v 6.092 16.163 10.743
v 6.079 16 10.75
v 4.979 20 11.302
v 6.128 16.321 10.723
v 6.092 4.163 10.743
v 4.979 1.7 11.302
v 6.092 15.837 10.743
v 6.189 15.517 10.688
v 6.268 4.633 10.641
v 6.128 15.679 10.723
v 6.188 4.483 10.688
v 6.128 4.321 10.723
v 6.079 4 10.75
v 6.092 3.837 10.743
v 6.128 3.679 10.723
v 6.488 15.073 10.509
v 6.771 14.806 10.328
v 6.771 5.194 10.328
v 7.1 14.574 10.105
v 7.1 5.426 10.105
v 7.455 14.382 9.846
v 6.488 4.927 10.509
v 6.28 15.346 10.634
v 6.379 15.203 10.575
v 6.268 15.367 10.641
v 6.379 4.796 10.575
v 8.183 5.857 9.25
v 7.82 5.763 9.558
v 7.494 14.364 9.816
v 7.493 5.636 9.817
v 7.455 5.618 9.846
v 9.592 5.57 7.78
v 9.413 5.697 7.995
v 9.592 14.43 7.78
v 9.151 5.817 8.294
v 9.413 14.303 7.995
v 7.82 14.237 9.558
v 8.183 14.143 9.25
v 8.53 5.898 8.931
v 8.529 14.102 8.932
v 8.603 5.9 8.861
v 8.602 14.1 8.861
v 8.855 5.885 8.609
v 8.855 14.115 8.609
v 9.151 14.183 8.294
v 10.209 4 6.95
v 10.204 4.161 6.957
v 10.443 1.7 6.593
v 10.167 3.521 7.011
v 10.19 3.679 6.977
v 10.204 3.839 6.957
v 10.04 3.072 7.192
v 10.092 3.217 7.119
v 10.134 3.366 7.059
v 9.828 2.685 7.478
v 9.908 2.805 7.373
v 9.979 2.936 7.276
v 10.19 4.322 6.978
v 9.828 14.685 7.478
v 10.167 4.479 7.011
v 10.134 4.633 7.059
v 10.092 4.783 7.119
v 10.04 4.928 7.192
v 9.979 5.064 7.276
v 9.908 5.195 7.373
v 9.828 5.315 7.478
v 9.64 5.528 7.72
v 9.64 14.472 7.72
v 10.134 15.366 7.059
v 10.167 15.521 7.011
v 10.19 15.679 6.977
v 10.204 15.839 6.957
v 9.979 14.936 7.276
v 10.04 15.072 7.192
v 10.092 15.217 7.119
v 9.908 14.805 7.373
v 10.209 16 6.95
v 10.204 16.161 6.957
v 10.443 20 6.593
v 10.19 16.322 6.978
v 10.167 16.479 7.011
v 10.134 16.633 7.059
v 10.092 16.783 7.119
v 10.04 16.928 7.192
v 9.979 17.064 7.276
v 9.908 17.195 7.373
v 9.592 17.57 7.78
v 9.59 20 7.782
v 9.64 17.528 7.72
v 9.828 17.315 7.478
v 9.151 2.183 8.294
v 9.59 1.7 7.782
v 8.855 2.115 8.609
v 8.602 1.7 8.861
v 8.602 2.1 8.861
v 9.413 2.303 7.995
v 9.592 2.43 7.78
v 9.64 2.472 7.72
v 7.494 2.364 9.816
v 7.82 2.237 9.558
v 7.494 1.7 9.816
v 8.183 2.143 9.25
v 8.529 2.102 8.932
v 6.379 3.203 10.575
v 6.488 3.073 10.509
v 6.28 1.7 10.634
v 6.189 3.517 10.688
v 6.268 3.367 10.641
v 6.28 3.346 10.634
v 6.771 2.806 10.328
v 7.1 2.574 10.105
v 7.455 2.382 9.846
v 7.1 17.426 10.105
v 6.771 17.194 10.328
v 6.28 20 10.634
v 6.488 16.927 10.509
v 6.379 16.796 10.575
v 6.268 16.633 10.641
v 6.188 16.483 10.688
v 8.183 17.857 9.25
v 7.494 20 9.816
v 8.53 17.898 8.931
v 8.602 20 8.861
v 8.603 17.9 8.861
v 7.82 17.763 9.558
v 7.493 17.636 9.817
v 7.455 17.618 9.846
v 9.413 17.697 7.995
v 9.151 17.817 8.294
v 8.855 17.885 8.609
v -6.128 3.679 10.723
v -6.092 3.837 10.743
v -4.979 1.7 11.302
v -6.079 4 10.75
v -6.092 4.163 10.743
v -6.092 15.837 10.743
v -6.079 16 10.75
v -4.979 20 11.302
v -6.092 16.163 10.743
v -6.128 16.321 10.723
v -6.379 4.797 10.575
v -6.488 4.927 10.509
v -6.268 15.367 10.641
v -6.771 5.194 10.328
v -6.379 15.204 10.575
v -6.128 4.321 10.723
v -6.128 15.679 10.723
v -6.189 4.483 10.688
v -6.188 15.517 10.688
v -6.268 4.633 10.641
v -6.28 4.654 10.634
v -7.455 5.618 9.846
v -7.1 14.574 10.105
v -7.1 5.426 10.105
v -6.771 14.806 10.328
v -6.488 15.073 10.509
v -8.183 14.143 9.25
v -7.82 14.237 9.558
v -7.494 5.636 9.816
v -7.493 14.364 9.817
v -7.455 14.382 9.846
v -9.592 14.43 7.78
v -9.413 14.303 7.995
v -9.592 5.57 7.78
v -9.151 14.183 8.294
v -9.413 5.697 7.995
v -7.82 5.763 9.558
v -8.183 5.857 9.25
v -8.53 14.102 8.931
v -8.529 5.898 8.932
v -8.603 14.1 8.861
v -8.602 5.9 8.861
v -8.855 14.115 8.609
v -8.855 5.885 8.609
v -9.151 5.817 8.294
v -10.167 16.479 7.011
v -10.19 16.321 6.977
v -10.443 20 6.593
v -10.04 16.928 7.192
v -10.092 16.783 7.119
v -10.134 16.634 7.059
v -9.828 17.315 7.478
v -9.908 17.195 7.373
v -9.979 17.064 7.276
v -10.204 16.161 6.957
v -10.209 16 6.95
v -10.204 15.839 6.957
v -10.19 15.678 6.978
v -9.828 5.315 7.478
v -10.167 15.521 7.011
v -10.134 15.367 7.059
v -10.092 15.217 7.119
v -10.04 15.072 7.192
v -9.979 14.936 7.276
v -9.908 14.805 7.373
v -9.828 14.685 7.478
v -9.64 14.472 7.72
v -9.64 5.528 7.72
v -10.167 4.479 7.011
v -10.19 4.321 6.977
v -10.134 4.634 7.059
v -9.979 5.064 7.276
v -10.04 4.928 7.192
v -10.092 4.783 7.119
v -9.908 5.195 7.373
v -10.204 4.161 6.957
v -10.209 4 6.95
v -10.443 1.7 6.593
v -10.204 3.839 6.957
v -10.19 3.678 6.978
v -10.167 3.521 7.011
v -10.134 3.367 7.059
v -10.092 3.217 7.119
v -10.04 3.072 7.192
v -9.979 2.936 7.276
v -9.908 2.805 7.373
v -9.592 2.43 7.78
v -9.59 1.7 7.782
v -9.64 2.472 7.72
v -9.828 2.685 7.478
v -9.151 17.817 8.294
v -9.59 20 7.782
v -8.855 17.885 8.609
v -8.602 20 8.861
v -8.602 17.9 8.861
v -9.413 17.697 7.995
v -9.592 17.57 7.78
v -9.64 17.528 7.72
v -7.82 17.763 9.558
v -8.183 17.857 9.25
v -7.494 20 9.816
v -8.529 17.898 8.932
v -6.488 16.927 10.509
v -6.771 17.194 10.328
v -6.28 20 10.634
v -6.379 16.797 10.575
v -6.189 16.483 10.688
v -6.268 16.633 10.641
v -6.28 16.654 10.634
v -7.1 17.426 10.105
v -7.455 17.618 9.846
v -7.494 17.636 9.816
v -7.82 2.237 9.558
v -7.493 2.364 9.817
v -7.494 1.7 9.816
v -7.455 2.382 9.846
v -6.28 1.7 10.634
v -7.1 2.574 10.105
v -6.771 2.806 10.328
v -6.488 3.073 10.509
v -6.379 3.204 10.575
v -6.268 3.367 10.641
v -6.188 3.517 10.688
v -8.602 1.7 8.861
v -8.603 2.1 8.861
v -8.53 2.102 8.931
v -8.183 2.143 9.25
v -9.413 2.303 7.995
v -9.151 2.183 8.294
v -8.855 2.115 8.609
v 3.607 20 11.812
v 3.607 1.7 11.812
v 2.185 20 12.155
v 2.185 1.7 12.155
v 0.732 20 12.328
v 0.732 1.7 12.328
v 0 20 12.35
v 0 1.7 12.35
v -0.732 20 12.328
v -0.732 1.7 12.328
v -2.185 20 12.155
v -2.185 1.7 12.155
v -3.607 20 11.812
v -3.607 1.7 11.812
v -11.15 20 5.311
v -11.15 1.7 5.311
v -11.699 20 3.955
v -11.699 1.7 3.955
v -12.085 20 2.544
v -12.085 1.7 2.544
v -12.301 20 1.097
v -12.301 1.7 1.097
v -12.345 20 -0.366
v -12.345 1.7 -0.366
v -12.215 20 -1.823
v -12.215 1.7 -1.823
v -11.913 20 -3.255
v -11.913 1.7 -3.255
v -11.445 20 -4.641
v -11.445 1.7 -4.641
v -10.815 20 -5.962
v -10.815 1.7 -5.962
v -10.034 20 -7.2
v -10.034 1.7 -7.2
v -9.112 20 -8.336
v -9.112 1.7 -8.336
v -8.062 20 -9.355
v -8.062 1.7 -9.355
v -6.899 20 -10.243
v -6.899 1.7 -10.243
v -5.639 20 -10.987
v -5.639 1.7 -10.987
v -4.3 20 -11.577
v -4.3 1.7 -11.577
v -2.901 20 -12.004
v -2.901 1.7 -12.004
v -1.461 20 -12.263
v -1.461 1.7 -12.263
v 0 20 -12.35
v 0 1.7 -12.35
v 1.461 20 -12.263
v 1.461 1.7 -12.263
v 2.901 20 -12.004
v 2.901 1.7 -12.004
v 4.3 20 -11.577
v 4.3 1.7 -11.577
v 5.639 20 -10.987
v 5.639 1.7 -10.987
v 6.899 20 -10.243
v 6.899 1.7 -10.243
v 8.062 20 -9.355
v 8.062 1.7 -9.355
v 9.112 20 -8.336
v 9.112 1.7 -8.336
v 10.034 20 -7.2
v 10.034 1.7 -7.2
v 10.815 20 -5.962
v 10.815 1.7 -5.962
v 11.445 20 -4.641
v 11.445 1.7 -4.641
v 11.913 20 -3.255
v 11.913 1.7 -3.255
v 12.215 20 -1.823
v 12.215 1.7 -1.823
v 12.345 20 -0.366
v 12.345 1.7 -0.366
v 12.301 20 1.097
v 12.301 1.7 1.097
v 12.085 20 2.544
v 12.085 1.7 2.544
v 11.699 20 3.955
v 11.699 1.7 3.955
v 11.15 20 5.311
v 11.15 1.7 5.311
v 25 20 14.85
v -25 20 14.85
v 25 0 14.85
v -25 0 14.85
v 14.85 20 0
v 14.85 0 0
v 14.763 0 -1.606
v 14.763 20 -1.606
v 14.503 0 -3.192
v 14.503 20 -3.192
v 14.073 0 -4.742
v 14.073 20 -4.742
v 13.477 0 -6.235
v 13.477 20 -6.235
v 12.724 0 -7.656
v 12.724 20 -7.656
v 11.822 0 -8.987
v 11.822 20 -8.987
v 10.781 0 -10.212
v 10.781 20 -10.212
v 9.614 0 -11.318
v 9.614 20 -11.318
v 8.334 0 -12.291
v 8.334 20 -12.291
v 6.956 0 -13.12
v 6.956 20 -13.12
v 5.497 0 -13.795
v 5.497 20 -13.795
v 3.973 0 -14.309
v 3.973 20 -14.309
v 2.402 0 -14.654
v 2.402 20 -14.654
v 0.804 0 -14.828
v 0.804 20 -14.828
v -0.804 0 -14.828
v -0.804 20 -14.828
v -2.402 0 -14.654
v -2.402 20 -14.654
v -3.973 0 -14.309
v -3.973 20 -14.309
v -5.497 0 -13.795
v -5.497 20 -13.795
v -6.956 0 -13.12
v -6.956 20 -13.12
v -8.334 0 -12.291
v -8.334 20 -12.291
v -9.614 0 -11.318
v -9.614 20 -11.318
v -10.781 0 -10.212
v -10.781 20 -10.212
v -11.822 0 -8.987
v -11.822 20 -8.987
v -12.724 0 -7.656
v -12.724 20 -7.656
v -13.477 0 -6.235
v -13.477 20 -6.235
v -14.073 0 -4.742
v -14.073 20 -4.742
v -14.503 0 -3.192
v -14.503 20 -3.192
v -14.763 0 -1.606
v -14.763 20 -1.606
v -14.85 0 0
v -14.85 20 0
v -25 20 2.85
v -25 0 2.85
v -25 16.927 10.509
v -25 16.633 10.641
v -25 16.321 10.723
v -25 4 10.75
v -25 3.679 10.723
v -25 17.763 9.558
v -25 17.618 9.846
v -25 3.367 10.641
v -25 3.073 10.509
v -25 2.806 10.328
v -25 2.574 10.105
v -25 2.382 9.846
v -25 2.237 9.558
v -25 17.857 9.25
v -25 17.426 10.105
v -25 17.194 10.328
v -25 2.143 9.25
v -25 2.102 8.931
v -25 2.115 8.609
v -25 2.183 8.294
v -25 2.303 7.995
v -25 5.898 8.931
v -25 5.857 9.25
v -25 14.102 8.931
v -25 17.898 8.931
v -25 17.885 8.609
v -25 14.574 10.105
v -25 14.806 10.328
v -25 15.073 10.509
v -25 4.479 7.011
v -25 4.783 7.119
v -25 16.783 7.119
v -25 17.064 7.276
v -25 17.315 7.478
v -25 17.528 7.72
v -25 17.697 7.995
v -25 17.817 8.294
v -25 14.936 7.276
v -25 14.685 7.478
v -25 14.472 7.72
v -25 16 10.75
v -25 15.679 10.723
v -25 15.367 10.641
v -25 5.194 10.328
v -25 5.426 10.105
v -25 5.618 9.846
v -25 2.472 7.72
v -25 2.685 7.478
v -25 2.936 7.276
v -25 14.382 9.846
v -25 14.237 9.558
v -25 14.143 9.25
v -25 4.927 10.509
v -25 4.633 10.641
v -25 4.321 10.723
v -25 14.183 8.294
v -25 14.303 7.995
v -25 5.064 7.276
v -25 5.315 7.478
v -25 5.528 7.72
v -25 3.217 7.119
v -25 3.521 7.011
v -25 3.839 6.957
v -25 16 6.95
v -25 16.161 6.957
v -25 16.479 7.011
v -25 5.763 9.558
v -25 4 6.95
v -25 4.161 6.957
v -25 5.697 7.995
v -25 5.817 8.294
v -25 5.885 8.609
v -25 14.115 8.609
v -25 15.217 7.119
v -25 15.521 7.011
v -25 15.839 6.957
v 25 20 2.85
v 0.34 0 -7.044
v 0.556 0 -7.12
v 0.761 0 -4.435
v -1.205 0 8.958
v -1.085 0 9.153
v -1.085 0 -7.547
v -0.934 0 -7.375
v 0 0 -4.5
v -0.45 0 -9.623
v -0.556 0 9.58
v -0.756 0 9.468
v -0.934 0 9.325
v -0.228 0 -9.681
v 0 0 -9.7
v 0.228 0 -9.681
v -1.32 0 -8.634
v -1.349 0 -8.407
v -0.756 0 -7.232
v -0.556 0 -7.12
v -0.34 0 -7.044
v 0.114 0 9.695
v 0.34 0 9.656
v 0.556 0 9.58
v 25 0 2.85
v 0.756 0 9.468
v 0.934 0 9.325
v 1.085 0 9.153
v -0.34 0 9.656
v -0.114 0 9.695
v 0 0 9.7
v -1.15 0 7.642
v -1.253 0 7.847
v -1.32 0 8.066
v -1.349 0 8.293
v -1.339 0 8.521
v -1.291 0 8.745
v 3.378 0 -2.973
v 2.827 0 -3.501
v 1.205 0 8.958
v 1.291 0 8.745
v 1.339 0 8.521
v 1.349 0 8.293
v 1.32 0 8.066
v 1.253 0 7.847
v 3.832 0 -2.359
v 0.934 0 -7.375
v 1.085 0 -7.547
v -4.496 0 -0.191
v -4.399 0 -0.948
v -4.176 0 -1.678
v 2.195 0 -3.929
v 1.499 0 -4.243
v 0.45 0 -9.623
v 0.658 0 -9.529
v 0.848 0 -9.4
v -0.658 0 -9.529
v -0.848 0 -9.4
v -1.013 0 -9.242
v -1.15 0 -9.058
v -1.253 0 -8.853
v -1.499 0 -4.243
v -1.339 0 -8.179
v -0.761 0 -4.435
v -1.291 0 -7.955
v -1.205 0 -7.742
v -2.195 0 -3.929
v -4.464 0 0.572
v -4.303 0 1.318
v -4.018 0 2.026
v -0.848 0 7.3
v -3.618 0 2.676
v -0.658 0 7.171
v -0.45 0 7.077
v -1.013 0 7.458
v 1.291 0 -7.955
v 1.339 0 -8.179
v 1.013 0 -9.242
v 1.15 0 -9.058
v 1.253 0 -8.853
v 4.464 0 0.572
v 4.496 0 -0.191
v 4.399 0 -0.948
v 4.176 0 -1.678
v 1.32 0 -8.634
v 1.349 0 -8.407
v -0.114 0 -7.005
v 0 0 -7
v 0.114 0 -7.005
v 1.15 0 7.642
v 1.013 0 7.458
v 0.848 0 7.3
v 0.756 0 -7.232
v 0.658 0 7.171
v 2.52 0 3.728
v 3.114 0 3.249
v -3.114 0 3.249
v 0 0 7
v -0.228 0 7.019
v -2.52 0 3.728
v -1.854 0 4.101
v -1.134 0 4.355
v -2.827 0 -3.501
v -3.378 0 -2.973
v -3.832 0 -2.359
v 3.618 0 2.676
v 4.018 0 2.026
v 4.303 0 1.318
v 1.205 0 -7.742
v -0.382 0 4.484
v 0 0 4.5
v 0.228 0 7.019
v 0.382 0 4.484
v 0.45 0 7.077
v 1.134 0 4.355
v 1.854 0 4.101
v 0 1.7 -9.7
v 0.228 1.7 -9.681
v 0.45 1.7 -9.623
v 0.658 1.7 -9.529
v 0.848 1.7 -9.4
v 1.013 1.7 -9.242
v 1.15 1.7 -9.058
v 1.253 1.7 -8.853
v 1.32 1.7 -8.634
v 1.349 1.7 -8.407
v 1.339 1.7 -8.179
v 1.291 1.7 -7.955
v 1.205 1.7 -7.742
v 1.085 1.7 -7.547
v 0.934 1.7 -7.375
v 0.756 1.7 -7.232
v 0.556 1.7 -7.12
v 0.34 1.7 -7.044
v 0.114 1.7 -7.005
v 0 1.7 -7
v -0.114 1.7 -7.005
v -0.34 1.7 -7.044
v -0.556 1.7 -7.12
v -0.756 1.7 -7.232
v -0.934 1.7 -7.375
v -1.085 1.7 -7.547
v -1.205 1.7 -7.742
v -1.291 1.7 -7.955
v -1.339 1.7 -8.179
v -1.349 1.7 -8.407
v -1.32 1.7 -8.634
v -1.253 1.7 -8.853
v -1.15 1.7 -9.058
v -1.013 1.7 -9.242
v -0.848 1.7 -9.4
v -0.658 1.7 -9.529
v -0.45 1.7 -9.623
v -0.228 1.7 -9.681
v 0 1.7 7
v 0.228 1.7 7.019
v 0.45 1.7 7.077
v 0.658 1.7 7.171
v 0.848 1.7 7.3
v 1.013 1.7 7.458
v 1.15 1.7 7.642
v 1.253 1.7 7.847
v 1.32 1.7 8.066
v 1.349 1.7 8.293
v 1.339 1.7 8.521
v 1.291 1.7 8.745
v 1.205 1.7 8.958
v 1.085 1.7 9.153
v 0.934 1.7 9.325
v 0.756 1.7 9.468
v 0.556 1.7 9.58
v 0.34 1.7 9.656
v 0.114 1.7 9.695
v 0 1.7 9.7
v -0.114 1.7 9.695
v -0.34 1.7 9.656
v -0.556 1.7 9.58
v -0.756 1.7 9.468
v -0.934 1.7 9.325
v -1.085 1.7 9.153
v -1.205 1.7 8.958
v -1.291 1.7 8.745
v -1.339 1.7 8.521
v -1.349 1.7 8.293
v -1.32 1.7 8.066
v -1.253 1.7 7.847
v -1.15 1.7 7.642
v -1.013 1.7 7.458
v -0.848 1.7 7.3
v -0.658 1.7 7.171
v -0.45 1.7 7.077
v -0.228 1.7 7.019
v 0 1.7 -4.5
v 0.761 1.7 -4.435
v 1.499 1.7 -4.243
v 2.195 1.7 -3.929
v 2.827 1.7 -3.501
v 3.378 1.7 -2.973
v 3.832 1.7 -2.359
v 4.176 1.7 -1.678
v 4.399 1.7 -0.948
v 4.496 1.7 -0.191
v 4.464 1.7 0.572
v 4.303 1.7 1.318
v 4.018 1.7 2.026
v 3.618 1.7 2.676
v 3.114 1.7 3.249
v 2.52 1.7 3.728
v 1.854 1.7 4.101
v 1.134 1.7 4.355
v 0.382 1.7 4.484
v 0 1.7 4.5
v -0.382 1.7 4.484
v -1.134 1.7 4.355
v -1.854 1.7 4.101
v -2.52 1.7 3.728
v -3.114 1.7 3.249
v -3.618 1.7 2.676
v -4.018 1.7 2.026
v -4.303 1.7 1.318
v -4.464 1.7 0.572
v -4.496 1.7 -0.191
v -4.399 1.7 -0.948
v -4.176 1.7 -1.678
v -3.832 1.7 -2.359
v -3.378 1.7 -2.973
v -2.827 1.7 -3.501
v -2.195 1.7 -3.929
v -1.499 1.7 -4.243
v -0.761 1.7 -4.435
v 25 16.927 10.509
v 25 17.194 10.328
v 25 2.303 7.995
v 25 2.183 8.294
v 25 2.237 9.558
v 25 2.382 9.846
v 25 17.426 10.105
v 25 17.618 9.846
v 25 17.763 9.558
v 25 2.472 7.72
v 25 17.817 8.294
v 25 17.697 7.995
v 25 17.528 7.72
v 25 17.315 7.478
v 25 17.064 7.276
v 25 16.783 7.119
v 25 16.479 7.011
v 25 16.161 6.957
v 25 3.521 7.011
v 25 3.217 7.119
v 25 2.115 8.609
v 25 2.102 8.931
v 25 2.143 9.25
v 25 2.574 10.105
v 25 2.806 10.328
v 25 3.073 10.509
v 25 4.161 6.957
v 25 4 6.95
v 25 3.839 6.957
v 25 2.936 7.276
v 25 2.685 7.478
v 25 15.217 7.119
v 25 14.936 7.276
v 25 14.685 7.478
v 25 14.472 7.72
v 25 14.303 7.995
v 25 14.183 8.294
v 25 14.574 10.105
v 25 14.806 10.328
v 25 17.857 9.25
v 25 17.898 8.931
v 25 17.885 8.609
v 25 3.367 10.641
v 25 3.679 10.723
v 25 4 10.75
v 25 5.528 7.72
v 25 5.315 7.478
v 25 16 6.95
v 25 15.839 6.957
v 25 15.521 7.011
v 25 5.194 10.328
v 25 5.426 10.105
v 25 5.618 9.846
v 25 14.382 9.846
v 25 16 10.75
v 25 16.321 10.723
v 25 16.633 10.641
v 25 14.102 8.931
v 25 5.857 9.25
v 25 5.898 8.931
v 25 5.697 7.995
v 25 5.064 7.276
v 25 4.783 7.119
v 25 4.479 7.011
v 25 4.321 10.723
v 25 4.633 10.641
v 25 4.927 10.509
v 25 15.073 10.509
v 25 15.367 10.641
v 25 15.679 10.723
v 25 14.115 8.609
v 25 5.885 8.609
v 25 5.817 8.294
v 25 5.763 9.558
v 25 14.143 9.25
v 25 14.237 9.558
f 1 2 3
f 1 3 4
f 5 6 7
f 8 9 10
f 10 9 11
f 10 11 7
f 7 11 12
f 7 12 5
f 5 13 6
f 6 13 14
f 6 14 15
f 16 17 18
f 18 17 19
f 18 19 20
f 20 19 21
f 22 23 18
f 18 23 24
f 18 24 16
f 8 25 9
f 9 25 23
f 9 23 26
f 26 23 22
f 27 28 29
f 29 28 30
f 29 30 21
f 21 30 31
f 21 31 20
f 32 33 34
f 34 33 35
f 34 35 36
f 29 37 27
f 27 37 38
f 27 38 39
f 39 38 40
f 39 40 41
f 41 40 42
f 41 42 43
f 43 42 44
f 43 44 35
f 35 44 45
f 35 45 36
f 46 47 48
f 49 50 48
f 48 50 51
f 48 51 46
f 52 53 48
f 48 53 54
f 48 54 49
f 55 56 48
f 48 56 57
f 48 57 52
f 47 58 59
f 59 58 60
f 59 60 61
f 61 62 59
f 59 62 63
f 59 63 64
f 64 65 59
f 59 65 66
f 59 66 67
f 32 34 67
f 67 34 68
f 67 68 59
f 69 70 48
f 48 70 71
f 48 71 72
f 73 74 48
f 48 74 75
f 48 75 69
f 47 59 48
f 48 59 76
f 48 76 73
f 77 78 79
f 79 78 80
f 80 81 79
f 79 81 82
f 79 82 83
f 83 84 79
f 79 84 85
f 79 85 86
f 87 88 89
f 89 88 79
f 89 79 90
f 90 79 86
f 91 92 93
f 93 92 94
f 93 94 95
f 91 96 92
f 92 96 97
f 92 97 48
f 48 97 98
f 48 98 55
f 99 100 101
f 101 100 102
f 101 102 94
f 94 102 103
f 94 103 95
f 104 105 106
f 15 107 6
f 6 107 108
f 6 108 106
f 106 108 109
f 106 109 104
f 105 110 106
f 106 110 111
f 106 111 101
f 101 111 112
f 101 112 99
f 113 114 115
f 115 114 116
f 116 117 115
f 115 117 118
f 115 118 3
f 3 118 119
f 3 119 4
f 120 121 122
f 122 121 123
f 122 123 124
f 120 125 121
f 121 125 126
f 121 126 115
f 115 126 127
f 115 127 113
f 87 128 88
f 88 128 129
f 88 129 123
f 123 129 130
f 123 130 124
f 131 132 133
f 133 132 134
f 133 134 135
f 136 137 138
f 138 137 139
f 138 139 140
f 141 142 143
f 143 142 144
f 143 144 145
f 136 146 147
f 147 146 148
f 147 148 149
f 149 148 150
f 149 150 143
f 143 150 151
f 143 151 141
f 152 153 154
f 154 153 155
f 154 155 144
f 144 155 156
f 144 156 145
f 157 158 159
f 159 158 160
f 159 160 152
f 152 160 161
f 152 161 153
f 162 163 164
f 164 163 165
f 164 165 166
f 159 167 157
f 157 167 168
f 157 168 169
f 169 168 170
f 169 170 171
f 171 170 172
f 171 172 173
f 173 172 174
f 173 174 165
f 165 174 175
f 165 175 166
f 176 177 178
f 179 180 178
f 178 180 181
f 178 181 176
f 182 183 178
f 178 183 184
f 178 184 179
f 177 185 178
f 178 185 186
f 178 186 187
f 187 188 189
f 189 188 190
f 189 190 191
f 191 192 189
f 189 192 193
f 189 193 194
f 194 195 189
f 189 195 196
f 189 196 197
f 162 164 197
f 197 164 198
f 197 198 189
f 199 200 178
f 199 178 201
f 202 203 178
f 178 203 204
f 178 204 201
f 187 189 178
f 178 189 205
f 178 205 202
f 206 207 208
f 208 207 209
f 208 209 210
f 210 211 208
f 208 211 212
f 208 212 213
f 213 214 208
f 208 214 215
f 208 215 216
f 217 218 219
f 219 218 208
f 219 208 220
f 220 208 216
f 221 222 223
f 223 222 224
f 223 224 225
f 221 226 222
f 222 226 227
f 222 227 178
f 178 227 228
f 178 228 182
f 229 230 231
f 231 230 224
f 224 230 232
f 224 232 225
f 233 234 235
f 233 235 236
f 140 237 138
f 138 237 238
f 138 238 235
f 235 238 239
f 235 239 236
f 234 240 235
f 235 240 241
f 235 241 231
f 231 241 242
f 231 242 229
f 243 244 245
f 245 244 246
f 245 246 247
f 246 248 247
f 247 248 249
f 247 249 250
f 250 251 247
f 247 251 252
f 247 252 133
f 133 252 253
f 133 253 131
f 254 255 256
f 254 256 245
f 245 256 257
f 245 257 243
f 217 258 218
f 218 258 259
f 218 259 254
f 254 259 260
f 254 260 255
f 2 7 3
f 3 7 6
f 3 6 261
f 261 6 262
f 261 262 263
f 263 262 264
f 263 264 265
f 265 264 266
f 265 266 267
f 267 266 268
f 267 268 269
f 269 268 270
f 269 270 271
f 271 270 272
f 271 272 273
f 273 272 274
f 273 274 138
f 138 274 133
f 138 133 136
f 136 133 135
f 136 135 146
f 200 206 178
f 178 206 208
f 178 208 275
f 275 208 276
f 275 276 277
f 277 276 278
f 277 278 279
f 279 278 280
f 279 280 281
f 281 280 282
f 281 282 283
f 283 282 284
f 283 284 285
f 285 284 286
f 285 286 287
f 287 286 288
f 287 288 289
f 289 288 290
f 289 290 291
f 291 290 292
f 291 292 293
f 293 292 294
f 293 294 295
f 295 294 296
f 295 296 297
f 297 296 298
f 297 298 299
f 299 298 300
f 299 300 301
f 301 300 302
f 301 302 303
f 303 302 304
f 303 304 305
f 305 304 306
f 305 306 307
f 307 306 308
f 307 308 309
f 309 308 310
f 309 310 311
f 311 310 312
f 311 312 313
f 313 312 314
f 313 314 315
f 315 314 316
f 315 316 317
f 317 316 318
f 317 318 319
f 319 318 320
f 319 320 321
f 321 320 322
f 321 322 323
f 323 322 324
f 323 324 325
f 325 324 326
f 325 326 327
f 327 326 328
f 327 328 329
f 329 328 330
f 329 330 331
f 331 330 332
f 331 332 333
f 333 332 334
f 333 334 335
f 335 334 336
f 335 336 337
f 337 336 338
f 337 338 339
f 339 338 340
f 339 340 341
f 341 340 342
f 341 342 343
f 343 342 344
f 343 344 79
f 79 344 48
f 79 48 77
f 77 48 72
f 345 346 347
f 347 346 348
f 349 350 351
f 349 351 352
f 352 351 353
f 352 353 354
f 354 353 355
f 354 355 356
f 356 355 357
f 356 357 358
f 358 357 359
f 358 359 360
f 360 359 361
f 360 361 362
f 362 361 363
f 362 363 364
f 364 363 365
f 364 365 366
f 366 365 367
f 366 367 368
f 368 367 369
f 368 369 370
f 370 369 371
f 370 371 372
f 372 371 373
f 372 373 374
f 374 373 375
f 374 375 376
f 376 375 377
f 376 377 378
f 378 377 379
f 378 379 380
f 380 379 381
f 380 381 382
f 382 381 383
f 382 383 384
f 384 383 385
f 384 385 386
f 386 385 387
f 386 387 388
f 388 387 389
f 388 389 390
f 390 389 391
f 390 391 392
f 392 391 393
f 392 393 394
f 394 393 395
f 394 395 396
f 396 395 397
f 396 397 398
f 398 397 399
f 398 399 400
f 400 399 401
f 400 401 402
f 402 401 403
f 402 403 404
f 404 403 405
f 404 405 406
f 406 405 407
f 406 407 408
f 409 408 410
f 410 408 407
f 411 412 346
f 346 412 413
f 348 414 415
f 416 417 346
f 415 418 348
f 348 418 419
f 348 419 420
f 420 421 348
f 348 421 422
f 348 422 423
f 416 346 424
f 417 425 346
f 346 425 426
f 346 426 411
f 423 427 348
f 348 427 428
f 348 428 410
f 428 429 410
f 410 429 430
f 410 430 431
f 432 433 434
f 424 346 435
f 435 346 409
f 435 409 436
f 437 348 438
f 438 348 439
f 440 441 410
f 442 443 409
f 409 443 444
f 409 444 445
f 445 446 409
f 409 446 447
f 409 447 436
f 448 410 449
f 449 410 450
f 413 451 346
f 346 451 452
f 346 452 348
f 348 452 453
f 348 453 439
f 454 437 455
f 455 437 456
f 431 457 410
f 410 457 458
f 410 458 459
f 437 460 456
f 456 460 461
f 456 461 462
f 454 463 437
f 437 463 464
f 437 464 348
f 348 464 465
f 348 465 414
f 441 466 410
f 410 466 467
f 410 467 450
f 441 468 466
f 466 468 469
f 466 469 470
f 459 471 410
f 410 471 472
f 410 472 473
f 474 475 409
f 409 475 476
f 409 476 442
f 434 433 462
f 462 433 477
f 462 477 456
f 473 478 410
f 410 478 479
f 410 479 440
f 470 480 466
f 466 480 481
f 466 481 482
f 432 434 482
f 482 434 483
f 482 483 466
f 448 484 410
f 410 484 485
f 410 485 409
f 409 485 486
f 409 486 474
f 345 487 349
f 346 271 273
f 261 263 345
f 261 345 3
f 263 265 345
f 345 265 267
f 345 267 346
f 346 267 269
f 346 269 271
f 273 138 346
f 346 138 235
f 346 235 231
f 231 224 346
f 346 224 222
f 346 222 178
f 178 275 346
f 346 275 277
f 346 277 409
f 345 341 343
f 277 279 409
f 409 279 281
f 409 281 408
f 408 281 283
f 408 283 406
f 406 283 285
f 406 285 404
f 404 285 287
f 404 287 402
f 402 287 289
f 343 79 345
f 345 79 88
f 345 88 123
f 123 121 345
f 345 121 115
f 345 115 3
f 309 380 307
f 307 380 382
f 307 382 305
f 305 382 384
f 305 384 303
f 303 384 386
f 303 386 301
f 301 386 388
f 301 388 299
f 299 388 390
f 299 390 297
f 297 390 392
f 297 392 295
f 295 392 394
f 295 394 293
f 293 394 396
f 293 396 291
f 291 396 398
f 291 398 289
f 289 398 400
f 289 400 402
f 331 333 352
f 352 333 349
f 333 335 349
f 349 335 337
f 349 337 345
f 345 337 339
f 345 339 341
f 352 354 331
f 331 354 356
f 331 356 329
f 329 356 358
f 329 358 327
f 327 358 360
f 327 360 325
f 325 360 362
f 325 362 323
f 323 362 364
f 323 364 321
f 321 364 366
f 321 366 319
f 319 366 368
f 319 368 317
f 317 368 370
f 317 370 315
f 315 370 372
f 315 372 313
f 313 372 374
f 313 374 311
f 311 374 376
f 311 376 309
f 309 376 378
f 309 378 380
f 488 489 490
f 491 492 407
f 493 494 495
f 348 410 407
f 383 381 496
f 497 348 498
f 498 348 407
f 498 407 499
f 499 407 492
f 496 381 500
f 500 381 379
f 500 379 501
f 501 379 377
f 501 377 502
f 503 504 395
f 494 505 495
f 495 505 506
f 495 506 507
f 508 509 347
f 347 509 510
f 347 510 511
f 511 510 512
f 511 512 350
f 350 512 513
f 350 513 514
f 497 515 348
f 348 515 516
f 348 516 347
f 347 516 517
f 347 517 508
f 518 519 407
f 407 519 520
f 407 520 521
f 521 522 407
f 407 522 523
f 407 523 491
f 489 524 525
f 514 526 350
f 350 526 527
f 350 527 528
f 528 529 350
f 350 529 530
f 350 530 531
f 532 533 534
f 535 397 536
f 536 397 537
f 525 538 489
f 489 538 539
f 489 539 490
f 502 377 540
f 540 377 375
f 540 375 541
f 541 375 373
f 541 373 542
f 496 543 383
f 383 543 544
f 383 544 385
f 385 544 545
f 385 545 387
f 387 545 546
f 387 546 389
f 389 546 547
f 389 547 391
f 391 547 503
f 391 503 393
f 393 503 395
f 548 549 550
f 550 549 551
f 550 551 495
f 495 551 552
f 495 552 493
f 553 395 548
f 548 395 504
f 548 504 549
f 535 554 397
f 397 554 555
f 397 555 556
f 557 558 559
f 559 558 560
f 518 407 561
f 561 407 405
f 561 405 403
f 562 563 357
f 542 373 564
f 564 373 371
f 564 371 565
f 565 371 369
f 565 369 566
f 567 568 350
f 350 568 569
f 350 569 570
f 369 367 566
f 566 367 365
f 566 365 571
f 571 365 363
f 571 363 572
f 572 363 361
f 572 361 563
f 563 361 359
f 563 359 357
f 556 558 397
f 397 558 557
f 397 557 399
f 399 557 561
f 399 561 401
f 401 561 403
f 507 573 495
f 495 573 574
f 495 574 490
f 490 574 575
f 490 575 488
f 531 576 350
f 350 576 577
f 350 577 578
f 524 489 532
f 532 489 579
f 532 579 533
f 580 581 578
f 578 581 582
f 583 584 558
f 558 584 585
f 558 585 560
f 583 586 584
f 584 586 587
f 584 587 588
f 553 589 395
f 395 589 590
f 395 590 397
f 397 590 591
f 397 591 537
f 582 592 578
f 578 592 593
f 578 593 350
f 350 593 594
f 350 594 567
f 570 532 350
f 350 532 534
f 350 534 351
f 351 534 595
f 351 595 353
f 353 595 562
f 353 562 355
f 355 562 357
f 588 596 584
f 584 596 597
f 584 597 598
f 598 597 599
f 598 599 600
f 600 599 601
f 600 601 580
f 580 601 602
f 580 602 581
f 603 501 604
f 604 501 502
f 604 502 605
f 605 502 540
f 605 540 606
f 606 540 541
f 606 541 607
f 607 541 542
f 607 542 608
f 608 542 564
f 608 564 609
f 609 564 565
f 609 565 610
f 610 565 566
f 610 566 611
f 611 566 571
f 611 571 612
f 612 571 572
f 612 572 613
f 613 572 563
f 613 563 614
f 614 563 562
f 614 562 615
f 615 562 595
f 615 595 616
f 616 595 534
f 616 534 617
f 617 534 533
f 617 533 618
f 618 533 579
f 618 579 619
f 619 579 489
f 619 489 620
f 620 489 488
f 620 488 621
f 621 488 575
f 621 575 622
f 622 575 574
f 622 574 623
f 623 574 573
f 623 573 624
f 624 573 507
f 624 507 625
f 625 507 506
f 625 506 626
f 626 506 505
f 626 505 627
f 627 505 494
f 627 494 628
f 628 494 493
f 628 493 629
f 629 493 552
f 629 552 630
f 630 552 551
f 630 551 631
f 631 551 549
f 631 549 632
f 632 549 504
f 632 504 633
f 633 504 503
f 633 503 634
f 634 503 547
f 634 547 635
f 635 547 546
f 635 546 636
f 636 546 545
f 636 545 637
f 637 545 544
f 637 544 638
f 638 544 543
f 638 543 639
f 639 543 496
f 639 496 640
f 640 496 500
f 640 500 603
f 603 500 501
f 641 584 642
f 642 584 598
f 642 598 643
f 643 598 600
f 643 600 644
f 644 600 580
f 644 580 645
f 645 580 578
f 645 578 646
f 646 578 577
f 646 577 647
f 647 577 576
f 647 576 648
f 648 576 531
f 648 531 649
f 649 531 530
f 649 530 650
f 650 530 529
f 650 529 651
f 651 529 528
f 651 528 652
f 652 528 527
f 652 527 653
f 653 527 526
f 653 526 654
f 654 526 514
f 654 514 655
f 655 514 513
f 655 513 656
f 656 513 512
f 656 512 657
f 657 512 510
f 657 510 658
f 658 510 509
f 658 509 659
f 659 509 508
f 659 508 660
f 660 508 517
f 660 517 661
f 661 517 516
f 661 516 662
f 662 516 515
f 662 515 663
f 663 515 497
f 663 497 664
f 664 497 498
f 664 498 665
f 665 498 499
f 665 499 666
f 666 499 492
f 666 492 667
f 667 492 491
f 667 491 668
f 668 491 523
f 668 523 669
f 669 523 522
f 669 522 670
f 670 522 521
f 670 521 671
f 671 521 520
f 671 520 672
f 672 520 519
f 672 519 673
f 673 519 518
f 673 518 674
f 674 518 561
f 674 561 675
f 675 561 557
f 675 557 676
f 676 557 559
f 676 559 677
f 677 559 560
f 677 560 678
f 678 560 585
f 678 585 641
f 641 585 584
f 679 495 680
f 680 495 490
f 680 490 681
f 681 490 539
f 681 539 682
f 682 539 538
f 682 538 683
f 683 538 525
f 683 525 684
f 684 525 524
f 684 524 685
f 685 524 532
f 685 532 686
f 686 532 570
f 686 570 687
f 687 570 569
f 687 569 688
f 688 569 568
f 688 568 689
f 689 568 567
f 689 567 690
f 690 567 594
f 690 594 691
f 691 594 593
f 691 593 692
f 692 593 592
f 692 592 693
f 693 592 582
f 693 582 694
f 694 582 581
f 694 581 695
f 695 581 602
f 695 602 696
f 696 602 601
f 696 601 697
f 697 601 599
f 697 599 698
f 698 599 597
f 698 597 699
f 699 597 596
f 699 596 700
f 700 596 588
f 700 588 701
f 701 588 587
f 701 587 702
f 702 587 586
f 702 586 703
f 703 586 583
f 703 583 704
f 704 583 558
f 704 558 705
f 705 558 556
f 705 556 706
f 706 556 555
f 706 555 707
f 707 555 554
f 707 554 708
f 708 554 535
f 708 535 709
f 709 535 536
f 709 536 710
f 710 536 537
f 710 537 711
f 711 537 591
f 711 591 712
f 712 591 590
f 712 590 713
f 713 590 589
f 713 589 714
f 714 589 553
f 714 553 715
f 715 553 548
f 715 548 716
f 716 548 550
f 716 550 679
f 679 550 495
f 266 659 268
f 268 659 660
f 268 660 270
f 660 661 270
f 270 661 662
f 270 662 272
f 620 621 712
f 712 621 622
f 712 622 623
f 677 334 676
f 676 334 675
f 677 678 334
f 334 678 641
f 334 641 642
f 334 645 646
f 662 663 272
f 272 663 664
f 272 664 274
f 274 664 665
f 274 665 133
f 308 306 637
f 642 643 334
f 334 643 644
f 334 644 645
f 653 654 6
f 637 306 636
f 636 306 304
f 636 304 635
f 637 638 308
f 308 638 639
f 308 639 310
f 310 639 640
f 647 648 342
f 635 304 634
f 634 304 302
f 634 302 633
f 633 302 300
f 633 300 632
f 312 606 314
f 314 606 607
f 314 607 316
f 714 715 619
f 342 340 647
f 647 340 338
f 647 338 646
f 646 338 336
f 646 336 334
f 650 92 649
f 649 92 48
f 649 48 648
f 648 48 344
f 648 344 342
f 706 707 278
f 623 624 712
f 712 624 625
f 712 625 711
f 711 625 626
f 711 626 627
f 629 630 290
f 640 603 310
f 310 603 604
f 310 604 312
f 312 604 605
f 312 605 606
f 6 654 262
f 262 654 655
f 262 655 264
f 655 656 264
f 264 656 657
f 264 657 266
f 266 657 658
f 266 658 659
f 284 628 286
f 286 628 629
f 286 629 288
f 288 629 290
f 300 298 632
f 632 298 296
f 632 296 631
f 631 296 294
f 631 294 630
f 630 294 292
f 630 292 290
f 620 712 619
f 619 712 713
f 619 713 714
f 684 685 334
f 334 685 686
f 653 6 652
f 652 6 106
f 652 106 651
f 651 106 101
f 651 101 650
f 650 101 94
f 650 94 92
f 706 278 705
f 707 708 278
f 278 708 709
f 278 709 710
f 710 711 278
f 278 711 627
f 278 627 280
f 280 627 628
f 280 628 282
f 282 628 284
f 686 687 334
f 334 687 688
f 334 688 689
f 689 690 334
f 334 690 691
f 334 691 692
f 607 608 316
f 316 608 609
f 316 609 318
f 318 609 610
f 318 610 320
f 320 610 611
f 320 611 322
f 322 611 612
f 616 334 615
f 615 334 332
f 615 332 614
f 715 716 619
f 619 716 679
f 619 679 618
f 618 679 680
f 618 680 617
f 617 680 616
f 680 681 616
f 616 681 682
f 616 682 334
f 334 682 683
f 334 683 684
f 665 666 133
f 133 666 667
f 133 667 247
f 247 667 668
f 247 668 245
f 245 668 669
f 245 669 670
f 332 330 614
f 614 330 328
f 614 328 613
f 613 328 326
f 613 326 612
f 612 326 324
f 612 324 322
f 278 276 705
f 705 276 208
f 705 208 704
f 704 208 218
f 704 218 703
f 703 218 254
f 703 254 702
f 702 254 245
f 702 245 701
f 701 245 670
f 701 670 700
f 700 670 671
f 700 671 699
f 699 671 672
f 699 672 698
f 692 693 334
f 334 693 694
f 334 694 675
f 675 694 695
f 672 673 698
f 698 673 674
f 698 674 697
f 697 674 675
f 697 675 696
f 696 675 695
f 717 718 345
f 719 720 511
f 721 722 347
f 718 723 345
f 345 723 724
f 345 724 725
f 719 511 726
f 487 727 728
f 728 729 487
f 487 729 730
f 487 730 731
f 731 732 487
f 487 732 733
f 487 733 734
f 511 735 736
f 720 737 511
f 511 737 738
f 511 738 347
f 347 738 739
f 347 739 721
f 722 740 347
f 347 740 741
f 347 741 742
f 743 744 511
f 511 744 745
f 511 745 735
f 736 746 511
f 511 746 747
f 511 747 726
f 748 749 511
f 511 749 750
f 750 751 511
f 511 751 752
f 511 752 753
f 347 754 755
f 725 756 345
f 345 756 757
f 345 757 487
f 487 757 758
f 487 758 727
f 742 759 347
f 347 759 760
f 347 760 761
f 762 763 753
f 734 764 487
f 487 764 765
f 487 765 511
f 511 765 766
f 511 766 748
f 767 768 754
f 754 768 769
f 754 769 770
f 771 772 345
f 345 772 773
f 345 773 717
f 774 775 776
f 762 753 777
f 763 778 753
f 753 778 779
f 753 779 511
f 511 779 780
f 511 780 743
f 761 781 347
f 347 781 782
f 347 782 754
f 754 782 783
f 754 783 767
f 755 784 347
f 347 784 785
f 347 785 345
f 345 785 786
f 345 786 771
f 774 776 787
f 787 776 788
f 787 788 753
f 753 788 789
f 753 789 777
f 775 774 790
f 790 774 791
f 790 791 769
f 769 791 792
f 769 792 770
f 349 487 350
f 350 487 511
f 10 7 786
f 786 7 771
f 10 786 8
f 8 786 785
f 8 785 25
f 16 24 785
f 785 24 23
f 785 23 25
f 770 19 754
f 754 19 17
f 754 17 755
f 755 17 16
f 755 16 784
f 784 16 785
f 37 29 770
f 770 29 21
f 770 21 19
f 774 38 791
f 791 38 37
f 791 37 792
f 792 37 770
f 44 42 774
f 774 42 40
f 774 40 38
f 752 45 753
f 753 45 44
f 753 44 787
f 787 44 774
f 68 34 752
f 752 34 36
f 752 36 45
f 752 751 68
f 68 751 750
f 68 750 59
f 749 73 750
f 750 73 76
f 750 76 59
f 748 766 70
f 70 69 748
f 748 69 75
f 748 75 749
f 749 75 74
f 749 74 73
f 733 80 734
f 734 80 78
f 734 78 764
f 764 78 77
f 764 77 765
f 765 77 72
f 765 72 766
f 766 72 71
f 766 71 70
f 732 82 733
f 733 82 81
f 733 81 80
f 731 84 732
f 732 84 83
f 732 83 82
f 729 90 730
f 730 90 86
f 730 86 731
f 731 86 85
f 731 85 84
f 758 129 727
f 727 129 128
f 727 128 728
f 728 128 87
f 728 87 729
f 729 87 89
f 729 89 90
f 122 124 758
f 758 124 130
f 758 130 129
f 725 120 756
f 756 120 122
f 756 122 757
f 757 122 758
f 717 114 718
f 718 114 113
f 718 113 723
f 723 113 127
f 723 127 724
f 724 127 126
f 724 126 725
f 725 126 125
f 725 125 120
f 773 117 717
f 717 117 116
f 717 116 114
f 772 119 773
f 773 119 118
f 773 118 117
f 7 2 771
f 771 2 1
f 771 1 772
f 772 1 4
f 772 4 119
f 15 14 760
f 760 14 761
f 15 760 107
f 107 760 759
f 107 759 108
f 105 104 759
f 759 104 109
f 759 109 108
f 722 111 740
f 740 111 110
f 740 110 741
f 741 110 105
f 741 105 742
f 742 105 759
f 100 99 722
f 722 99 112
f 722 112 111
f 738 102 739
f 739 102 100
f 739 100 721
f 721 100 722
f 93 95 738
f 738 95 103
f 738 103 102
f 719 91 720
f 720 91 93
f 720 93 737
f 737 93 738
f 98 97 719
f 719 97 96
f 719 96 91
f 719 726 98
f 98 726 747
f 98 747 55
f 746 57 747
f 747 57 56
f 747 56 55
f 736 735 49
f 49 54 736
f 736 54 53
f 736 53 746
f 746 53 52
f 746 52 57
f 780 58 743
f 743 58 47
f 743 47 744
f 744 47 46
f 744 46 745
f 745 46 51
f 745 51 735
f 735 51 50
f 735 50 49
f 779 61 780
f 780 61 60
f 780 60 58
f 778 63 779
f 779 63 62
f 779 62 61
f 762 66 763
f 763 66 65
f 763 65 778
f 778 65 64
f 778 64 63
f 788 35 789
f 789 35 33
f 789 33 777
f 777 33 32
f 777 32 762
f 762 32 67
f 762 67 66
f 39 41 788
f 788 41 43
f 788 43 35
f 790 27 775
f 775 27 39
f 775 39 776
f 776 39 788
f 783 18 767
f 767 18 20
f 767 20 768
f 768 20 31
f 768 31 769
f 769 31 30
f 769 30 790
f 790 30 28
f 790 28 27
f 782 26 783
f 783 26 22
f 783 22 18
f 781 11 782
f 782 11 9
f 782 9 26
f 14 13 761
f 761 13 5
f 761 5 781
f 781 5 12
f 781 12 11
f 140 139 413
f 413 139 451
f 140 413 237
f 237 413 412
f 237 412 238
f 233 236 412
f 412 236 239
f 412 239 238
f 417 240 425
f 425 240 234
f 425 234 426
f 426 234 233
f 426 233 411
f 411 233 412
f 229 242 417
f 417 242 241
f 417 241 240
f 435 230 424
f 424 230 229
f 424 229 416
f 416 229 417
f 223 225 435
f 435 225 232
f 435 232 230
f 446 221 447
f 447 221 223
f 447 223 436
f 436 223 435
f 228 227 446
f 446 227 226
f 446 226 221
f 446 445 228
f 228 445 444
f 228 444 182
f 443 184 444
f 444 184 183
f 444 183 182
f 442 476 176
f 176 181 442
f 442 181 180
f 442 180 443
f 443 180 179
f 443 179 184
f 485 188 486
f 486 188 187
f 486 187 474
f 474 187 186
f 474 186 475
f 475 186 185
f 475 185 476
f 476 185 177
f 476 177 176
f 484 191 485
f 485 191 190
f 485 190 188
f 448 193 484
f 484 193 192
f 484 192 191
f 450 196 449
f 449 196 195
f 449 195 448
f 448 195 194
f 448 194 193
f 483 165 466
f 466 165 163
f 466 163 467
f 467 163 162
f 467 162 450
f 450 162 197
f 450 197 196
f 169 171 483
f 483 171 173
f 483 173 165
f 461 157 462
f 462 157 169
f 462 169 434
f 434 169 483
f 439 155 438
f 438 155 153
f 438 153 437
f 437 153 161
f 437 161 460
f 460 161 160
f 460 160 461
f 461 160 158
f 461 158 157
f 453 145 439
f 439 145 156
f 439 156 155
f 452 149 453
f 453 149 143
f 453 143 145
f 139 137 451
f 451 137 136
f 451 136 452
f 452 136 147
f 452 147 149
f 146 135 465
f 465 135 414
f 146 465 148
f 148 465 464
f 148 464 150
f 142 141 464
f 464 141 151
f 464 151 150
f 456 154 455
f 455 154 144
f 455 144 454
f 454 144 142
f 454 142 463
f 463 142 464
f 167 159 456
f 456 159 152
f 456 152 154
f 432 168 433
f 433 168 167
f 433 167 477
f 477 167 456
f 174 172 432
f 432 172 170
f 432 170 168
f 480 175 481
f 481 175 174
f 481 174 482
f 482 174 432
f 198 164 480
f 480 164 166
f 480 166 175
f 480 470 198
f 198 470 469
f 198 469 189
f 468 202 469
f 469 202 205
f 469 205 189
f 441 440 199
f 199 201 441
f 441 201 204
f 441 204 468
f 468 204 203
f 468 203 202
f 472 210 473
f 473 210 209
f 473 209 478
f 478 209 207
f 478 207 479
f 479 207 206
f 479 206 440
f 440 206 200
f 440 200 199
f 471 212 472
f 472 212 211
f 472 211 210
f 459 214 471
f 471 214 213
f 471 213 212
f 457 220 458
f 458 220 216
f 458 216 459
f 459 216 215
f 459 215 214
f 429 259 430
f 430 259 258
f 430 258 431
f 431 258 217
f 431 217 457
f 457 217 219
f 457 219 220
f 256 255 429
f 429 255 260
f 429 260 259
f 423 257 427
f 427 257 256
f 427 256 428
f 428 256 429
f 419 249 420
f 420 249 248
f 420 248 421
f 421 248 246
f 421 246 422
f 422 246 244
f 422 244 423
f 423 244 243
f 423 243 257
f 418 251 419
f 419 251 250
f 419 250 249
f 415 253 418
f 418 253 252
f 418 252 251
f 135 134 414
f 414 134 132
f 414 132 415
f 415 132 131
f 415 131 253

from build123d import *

# Parameters (mm, degrees)
SKETCH1_R               = 12.35
BOSS_EXTRUDE1_DEPTH     = 20
SKETCH1_5_R             = 12.35
SKETCH1_5_R_2           = 1.35
SKETCH1_5_R_3           = 4.5
BOSS_EXTRUDE2_DEPTH     = 1.7
CUT_EXTRUDE1_DEPTH      = 32
CUT_EXTRUDE1_DEPTH_BACK = 30
SKETCH2_R               = 1.9


with BuildPart() as part:
    # Sketch1 → Boss-Extrude1 (new body)
    with BuildSketch(Plane(origin=(0, 0, 0), x_dir=(1, 0, 0), z_dir=(0, 1, 0))):
        with BuildLine():
            ThreePointArc((0, -14.85), (10.500535701, 10.500535701), (-14.85, 0))
            Line((-14.85, 0), (-25, -2.85))
            Line((-25, -2.85), (-25, -14.85))
            Line((-25, -14.85), (0, -14.85))
        make_face()
        Circle(SKETCH1_R, mode=Mode.SUBTRACT)
    boss_extrude1 = extrude(amount=BOSS_EXTRUDE1_DEPTH)

    # Sketch1<5> → Boss-Extrude2 (add)
    with BuildSketch(Plane(origin=(0, 0, 0), x_dir=(1, 0, 0), z_dir=(0, 1, 0))):
        Circle(SKETCH1_5_R)
        with Locations((0, -8.35)):
            Circle(SKETCH1_5_R_2, mode=Mode.SUBTRACT)
        Circle(SKETCH1_5_R_3, mode=Mode.SUBTRACT)
        with Locations((0, 8.35)):
            Circle(SKETCH1_5_R_2, mode=Mode.SUBTRACT)
    extrude(amount=BOSS_EXTRUDE2_DEPTH)

    # Mirror1: Boss-Extrude1 across plane
    add(boss_extrude1.mirror(Plane(origin=(0, 0, 0), x_dir=(0, 0, 1), z_dir=(1, 0, 0))))

    # Sketch2 → Cut-Extrude1 (cut, two sides: drawn at the far end of the back side and taken through both)
    with BuildSketch(Plane(origin=(0, 0, 0), x_dir=(0, 0, -1), z_dir=(1, 0, 0)).offset(-CUT_EXTRUDE1_DEPTH_BACK)):
        with Locations((-8.85, 4)):
            Circle(SKETCH2_R)
        with Locations((-8.85, 16)):
            Circle(SKETCH2_R)
    extrude(amount=CUT_EXTRUDE1_DEPTH + CUT_EXTRUDE1_DEPTH_BACK, mode=Mode.SUBTRACT)


solid = part.part
